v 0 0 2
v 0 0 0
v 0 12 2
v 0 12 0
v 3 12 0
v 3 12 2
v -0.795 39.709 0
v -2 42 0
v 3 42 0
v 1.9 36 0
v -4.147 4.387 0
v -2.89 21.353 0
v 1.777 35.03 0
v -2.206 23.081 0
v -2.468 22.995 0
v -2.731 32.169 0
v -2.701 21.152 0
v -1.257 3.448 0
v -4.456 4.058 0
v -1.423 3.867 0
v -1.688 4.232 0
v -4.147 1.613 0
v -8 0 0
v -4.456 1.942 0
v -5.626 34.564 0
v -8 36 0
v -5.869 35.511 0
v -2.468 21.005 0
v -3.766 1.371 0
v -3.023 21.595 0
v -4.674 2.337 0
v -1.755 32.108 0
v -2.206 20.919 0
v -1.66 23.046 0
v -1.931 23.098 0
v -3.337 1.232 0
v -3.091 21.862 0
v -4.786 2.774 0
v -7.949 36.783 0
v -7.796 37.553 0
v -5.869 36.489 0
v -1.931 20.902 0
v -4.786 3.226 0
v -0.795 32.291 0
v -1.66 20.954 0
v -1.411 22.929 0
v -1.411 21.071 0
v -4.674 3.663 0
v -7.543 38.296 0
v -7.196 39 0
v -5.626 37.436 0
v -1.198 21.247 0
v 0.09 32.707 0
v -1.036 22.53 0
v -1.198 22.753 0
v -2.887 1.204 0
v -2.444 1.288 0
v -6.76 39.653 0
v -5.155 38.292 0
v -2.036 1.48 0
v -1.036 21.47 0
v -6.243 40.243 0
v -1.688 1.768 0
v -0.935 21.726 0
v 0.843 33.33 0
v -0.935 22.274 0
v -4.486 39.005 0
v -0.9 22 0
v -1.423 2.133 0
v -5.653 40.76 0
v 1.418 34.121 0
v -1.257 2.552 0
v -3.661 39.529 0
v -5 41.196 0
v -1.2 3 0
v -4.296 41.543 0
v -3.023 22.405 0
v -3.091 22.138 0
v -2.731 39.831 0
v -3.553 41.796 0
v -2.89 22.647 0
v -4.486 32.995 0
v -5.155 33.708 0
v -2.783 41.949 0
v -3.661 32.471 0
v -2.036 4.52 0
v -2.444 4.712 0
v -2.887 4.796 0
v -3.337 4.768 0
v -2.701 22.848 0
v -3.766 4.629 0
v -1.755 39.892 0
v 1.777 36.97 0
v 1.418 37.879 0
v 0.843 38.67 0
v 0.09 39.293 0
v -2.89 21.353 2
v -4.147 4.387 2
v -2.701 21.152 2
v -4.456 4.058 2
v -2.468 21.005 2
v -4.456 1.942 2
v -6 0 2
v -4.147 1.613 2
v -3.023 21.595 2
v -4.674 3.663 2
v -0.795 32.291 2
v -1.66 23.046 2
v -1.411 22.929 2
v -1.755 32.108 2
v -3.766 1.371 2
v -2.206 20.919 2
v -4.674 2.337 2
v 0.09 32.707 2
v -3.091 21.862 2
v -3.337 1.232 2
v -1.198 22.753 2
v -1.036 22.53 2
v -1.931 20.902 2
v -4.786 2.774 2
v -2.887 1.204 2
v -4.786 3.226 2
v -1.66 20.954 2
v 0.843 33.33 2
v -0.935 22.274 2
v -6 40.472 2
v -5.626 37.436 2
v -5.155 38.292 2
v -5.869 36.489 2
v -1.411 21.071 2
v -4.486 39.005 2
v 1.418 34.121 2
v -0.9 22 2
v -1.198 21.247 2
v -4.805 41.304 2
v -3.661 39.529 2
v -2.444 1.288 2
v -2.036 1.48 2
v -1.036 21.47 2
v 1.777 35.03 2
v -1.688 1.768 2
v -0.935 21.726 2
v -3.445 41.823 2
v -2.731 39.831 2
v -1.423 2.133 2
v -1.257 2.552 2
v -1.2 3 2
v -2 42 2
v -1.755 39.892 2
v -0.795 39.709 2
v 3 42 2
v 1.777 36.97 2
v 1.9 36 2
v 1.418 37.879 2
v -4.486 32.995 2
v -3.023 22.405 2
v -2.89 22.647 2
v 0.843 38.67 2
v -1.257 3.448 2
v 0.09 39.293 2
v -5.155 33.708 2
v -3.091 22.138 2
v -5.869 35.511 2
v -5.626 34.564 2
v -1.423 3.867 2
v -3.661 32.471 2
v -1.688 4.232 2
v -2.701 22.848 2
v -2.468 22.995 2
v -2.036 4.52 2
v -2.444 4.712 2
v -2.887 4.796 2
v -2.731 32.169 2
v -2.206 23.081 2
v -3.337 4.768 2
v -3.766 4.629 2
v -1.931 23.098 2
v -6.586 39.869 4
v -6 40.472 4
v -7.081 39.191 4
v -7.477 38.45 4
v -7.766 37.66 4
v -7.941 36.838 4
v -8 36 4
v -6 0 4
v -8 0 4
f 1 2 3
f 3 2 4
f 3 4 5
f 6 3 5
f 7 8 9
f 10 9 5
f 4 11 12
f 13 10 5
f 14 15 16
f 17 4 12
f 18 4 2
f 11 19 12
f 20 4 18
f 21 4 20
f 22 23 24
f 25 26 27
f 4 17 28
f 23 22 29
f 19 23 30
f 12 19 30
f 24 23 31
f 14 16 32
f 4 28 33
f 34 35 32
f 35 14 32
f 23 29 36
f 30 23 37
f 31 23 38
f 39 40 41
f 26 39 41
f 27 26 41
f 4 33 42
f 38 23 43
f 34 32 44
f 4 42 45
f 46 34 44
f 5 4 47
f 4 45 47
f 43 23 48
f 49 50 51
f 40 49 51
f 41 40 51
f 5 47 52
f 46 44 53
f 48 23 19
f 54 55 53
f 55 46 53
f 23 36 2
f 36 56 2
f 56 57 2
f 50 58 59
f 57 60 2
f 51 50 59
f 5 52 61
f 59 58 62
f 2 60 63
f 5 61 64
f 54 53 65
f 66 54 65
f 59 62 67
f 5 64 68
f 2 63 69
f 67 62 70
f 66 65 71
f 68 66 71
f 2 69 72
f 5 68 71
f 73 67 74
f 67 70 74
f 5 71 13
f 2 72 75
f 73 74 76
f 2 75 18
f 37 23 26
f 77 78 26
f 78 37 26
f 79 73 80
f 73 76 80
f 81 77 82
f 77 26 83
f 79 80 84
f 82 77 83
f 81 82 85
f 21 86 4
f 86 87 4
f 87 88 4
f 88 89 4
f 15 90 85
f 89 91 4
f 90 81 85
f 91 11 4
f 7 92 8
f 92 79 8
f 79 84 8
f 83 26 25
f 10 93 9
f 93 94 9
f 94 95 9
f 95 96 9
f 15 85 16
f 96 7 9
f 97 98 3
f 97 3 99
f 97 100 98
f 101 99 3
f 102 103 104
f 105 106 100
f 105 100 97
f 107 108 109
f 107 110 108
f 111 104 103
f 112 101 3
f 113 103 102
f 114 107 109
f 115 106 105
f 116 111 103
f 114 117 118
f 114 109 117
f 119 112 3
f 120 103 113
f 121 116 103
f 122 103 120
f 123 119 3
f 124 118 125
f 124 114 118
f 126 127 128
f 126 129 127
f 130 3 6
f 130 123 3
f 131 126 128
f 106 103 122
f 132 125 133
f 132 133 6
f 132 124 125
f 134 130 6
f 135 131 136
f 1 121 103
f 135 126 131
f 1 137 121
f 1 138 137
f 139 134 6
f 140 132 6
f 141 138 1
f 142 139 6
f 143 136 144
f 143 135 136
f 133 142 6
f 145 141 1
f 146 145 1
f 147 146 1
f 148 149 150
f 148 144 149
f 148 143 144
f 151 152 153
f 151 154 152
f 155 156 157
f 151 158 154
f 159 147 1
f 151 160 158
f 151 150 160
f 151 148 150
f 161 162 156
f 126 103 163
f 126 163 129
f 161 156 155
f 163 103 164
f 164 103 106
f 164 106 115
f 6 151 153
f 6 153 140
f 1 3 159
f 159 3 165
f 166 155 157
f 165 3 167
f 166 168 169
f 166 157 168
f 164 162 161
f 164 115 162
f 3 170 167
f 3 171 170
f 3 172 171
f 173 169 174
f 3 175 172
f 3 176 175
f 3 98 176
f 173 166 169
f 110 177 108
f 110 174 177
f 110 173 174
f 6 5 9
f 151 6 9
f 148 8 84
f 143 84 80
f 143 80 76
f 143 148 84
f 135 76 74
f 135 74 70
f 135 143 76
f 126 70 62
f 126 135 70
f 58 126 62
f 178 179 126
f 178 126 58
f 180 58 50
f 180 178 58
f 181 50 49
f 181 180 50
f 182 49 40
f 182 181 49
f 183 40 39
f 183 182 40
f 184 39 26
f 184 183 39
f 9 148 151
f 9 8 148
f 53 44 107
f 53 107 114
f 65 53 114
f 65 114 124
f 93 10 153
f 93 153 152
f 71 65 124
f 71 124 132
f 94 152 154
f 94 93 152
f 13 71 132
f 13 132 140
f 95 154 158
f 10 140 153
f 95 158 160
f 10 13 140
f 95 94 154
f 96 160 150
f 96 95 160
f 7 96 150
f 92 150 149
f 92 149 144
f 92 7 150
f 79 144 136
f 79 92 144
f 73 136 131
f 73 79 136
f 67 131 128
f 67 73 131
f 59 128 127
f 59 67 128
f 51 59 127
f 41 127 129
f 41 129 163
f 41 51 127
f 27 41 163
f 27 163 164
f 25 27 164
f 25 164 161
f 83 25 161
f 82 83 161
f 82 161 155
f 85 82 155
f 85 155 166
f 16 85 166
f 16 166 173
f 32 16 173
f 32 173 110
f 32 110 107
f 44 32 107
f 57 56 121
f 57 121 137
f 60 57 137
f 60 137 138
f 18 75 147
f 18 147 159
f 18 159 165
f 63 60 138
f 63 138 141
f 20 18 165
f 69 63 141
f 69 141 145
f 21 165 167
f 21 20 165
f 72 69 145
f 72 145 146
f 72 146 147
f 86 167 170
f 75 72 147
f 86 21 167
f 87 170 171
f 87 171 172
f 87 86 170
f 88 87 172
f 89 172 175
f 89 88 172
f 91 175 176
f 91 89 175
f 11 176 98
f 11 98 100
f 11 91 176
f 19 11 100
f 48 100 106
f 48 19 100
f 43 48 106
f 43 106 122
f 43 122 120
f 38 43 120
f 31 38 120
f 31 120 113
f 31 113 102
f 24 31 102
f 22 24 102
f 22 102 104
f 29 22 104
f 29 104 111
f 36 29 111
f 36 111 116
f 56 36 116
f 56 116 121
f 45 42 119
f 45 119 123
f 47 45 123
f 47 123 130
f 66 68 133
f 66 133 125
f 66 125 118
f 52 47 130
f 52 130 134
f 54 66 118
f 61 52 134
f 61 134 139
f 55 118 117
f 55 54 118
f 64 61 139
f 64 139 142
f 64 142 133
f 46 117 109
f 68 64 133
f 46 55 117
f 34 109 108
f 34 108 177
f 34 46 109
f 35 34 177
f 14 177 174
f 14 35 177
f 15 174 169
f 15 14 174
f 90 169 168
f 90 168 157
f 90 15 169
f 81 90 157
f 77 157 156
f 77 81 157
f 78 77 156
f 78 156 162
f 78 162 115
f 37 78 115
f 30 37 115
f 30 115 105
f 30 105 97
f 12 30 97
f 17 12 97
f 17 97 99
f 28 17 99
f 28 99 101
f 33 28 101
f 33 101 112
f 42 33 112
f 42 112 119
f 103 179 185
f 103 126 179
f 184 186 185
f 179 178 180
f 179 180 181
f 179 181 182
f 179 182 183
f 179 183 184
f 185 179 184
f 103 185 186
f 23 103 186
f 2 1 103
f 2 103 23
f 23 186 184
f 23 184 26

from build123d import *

# Parameters (mm, degrees)
SKETCH_R     = 1.8
SKETCH_R_2   = 3.9
SKETCH_R_3   = 1.1
PAD_DEPTH    = 2
SKETCH001_W  = 2
SKETCH001_H  = 42
PAD001_DEPTH = 2
POCKET_DEPTH = 4.001


with BuildPart() as part:
    # Sketch → Pad (new body)
    with BuildSketch(Plane.XY):
        Polygon((-8, 42), (3, 42), (3, 12), (0, 12), (0, 0), (-8, 0), align=None)
        with Locations((-3, 3)):
            Circle(SKETCH_R, mode=Mode.SUBTRACT)
        with Locations((-2, 36)):
            Circle(SKETCH_R_2, mode=Mode.SUBTRACT)
        with Locations((-2, 22)):
            Circle(SKETCH_R_3, mode=Mode.SUBTRACT)
    extrude(amount=PAD_DEPTH)

    # Sketch001 → Pad001 (new body)
    with BuildSketch(Plane.XY.offset(2)):
        with Locations((-7, 21)):
            Rectangle(SKETCH001_W, SKETCH001_H)
    extrude(amount=PAD001_DEPTH)

    # Sketch002 → Pocket (cut, through all)
    with BuildSketch(Plane.XY.offset(4)):
        with BuildLine():
            ThreePointArc((-2.000021, 42), (-6.242641, 40.242641), (-8, 36.000021))
            Line((-8, 36.000021), (-8, 42))
            Line((-8, 42), (-2.000021, 42))
        make_face()
    extrude(amount=-POCKET_DEPTH, mode=Mode.SUBTRACT)


solid = part.part
